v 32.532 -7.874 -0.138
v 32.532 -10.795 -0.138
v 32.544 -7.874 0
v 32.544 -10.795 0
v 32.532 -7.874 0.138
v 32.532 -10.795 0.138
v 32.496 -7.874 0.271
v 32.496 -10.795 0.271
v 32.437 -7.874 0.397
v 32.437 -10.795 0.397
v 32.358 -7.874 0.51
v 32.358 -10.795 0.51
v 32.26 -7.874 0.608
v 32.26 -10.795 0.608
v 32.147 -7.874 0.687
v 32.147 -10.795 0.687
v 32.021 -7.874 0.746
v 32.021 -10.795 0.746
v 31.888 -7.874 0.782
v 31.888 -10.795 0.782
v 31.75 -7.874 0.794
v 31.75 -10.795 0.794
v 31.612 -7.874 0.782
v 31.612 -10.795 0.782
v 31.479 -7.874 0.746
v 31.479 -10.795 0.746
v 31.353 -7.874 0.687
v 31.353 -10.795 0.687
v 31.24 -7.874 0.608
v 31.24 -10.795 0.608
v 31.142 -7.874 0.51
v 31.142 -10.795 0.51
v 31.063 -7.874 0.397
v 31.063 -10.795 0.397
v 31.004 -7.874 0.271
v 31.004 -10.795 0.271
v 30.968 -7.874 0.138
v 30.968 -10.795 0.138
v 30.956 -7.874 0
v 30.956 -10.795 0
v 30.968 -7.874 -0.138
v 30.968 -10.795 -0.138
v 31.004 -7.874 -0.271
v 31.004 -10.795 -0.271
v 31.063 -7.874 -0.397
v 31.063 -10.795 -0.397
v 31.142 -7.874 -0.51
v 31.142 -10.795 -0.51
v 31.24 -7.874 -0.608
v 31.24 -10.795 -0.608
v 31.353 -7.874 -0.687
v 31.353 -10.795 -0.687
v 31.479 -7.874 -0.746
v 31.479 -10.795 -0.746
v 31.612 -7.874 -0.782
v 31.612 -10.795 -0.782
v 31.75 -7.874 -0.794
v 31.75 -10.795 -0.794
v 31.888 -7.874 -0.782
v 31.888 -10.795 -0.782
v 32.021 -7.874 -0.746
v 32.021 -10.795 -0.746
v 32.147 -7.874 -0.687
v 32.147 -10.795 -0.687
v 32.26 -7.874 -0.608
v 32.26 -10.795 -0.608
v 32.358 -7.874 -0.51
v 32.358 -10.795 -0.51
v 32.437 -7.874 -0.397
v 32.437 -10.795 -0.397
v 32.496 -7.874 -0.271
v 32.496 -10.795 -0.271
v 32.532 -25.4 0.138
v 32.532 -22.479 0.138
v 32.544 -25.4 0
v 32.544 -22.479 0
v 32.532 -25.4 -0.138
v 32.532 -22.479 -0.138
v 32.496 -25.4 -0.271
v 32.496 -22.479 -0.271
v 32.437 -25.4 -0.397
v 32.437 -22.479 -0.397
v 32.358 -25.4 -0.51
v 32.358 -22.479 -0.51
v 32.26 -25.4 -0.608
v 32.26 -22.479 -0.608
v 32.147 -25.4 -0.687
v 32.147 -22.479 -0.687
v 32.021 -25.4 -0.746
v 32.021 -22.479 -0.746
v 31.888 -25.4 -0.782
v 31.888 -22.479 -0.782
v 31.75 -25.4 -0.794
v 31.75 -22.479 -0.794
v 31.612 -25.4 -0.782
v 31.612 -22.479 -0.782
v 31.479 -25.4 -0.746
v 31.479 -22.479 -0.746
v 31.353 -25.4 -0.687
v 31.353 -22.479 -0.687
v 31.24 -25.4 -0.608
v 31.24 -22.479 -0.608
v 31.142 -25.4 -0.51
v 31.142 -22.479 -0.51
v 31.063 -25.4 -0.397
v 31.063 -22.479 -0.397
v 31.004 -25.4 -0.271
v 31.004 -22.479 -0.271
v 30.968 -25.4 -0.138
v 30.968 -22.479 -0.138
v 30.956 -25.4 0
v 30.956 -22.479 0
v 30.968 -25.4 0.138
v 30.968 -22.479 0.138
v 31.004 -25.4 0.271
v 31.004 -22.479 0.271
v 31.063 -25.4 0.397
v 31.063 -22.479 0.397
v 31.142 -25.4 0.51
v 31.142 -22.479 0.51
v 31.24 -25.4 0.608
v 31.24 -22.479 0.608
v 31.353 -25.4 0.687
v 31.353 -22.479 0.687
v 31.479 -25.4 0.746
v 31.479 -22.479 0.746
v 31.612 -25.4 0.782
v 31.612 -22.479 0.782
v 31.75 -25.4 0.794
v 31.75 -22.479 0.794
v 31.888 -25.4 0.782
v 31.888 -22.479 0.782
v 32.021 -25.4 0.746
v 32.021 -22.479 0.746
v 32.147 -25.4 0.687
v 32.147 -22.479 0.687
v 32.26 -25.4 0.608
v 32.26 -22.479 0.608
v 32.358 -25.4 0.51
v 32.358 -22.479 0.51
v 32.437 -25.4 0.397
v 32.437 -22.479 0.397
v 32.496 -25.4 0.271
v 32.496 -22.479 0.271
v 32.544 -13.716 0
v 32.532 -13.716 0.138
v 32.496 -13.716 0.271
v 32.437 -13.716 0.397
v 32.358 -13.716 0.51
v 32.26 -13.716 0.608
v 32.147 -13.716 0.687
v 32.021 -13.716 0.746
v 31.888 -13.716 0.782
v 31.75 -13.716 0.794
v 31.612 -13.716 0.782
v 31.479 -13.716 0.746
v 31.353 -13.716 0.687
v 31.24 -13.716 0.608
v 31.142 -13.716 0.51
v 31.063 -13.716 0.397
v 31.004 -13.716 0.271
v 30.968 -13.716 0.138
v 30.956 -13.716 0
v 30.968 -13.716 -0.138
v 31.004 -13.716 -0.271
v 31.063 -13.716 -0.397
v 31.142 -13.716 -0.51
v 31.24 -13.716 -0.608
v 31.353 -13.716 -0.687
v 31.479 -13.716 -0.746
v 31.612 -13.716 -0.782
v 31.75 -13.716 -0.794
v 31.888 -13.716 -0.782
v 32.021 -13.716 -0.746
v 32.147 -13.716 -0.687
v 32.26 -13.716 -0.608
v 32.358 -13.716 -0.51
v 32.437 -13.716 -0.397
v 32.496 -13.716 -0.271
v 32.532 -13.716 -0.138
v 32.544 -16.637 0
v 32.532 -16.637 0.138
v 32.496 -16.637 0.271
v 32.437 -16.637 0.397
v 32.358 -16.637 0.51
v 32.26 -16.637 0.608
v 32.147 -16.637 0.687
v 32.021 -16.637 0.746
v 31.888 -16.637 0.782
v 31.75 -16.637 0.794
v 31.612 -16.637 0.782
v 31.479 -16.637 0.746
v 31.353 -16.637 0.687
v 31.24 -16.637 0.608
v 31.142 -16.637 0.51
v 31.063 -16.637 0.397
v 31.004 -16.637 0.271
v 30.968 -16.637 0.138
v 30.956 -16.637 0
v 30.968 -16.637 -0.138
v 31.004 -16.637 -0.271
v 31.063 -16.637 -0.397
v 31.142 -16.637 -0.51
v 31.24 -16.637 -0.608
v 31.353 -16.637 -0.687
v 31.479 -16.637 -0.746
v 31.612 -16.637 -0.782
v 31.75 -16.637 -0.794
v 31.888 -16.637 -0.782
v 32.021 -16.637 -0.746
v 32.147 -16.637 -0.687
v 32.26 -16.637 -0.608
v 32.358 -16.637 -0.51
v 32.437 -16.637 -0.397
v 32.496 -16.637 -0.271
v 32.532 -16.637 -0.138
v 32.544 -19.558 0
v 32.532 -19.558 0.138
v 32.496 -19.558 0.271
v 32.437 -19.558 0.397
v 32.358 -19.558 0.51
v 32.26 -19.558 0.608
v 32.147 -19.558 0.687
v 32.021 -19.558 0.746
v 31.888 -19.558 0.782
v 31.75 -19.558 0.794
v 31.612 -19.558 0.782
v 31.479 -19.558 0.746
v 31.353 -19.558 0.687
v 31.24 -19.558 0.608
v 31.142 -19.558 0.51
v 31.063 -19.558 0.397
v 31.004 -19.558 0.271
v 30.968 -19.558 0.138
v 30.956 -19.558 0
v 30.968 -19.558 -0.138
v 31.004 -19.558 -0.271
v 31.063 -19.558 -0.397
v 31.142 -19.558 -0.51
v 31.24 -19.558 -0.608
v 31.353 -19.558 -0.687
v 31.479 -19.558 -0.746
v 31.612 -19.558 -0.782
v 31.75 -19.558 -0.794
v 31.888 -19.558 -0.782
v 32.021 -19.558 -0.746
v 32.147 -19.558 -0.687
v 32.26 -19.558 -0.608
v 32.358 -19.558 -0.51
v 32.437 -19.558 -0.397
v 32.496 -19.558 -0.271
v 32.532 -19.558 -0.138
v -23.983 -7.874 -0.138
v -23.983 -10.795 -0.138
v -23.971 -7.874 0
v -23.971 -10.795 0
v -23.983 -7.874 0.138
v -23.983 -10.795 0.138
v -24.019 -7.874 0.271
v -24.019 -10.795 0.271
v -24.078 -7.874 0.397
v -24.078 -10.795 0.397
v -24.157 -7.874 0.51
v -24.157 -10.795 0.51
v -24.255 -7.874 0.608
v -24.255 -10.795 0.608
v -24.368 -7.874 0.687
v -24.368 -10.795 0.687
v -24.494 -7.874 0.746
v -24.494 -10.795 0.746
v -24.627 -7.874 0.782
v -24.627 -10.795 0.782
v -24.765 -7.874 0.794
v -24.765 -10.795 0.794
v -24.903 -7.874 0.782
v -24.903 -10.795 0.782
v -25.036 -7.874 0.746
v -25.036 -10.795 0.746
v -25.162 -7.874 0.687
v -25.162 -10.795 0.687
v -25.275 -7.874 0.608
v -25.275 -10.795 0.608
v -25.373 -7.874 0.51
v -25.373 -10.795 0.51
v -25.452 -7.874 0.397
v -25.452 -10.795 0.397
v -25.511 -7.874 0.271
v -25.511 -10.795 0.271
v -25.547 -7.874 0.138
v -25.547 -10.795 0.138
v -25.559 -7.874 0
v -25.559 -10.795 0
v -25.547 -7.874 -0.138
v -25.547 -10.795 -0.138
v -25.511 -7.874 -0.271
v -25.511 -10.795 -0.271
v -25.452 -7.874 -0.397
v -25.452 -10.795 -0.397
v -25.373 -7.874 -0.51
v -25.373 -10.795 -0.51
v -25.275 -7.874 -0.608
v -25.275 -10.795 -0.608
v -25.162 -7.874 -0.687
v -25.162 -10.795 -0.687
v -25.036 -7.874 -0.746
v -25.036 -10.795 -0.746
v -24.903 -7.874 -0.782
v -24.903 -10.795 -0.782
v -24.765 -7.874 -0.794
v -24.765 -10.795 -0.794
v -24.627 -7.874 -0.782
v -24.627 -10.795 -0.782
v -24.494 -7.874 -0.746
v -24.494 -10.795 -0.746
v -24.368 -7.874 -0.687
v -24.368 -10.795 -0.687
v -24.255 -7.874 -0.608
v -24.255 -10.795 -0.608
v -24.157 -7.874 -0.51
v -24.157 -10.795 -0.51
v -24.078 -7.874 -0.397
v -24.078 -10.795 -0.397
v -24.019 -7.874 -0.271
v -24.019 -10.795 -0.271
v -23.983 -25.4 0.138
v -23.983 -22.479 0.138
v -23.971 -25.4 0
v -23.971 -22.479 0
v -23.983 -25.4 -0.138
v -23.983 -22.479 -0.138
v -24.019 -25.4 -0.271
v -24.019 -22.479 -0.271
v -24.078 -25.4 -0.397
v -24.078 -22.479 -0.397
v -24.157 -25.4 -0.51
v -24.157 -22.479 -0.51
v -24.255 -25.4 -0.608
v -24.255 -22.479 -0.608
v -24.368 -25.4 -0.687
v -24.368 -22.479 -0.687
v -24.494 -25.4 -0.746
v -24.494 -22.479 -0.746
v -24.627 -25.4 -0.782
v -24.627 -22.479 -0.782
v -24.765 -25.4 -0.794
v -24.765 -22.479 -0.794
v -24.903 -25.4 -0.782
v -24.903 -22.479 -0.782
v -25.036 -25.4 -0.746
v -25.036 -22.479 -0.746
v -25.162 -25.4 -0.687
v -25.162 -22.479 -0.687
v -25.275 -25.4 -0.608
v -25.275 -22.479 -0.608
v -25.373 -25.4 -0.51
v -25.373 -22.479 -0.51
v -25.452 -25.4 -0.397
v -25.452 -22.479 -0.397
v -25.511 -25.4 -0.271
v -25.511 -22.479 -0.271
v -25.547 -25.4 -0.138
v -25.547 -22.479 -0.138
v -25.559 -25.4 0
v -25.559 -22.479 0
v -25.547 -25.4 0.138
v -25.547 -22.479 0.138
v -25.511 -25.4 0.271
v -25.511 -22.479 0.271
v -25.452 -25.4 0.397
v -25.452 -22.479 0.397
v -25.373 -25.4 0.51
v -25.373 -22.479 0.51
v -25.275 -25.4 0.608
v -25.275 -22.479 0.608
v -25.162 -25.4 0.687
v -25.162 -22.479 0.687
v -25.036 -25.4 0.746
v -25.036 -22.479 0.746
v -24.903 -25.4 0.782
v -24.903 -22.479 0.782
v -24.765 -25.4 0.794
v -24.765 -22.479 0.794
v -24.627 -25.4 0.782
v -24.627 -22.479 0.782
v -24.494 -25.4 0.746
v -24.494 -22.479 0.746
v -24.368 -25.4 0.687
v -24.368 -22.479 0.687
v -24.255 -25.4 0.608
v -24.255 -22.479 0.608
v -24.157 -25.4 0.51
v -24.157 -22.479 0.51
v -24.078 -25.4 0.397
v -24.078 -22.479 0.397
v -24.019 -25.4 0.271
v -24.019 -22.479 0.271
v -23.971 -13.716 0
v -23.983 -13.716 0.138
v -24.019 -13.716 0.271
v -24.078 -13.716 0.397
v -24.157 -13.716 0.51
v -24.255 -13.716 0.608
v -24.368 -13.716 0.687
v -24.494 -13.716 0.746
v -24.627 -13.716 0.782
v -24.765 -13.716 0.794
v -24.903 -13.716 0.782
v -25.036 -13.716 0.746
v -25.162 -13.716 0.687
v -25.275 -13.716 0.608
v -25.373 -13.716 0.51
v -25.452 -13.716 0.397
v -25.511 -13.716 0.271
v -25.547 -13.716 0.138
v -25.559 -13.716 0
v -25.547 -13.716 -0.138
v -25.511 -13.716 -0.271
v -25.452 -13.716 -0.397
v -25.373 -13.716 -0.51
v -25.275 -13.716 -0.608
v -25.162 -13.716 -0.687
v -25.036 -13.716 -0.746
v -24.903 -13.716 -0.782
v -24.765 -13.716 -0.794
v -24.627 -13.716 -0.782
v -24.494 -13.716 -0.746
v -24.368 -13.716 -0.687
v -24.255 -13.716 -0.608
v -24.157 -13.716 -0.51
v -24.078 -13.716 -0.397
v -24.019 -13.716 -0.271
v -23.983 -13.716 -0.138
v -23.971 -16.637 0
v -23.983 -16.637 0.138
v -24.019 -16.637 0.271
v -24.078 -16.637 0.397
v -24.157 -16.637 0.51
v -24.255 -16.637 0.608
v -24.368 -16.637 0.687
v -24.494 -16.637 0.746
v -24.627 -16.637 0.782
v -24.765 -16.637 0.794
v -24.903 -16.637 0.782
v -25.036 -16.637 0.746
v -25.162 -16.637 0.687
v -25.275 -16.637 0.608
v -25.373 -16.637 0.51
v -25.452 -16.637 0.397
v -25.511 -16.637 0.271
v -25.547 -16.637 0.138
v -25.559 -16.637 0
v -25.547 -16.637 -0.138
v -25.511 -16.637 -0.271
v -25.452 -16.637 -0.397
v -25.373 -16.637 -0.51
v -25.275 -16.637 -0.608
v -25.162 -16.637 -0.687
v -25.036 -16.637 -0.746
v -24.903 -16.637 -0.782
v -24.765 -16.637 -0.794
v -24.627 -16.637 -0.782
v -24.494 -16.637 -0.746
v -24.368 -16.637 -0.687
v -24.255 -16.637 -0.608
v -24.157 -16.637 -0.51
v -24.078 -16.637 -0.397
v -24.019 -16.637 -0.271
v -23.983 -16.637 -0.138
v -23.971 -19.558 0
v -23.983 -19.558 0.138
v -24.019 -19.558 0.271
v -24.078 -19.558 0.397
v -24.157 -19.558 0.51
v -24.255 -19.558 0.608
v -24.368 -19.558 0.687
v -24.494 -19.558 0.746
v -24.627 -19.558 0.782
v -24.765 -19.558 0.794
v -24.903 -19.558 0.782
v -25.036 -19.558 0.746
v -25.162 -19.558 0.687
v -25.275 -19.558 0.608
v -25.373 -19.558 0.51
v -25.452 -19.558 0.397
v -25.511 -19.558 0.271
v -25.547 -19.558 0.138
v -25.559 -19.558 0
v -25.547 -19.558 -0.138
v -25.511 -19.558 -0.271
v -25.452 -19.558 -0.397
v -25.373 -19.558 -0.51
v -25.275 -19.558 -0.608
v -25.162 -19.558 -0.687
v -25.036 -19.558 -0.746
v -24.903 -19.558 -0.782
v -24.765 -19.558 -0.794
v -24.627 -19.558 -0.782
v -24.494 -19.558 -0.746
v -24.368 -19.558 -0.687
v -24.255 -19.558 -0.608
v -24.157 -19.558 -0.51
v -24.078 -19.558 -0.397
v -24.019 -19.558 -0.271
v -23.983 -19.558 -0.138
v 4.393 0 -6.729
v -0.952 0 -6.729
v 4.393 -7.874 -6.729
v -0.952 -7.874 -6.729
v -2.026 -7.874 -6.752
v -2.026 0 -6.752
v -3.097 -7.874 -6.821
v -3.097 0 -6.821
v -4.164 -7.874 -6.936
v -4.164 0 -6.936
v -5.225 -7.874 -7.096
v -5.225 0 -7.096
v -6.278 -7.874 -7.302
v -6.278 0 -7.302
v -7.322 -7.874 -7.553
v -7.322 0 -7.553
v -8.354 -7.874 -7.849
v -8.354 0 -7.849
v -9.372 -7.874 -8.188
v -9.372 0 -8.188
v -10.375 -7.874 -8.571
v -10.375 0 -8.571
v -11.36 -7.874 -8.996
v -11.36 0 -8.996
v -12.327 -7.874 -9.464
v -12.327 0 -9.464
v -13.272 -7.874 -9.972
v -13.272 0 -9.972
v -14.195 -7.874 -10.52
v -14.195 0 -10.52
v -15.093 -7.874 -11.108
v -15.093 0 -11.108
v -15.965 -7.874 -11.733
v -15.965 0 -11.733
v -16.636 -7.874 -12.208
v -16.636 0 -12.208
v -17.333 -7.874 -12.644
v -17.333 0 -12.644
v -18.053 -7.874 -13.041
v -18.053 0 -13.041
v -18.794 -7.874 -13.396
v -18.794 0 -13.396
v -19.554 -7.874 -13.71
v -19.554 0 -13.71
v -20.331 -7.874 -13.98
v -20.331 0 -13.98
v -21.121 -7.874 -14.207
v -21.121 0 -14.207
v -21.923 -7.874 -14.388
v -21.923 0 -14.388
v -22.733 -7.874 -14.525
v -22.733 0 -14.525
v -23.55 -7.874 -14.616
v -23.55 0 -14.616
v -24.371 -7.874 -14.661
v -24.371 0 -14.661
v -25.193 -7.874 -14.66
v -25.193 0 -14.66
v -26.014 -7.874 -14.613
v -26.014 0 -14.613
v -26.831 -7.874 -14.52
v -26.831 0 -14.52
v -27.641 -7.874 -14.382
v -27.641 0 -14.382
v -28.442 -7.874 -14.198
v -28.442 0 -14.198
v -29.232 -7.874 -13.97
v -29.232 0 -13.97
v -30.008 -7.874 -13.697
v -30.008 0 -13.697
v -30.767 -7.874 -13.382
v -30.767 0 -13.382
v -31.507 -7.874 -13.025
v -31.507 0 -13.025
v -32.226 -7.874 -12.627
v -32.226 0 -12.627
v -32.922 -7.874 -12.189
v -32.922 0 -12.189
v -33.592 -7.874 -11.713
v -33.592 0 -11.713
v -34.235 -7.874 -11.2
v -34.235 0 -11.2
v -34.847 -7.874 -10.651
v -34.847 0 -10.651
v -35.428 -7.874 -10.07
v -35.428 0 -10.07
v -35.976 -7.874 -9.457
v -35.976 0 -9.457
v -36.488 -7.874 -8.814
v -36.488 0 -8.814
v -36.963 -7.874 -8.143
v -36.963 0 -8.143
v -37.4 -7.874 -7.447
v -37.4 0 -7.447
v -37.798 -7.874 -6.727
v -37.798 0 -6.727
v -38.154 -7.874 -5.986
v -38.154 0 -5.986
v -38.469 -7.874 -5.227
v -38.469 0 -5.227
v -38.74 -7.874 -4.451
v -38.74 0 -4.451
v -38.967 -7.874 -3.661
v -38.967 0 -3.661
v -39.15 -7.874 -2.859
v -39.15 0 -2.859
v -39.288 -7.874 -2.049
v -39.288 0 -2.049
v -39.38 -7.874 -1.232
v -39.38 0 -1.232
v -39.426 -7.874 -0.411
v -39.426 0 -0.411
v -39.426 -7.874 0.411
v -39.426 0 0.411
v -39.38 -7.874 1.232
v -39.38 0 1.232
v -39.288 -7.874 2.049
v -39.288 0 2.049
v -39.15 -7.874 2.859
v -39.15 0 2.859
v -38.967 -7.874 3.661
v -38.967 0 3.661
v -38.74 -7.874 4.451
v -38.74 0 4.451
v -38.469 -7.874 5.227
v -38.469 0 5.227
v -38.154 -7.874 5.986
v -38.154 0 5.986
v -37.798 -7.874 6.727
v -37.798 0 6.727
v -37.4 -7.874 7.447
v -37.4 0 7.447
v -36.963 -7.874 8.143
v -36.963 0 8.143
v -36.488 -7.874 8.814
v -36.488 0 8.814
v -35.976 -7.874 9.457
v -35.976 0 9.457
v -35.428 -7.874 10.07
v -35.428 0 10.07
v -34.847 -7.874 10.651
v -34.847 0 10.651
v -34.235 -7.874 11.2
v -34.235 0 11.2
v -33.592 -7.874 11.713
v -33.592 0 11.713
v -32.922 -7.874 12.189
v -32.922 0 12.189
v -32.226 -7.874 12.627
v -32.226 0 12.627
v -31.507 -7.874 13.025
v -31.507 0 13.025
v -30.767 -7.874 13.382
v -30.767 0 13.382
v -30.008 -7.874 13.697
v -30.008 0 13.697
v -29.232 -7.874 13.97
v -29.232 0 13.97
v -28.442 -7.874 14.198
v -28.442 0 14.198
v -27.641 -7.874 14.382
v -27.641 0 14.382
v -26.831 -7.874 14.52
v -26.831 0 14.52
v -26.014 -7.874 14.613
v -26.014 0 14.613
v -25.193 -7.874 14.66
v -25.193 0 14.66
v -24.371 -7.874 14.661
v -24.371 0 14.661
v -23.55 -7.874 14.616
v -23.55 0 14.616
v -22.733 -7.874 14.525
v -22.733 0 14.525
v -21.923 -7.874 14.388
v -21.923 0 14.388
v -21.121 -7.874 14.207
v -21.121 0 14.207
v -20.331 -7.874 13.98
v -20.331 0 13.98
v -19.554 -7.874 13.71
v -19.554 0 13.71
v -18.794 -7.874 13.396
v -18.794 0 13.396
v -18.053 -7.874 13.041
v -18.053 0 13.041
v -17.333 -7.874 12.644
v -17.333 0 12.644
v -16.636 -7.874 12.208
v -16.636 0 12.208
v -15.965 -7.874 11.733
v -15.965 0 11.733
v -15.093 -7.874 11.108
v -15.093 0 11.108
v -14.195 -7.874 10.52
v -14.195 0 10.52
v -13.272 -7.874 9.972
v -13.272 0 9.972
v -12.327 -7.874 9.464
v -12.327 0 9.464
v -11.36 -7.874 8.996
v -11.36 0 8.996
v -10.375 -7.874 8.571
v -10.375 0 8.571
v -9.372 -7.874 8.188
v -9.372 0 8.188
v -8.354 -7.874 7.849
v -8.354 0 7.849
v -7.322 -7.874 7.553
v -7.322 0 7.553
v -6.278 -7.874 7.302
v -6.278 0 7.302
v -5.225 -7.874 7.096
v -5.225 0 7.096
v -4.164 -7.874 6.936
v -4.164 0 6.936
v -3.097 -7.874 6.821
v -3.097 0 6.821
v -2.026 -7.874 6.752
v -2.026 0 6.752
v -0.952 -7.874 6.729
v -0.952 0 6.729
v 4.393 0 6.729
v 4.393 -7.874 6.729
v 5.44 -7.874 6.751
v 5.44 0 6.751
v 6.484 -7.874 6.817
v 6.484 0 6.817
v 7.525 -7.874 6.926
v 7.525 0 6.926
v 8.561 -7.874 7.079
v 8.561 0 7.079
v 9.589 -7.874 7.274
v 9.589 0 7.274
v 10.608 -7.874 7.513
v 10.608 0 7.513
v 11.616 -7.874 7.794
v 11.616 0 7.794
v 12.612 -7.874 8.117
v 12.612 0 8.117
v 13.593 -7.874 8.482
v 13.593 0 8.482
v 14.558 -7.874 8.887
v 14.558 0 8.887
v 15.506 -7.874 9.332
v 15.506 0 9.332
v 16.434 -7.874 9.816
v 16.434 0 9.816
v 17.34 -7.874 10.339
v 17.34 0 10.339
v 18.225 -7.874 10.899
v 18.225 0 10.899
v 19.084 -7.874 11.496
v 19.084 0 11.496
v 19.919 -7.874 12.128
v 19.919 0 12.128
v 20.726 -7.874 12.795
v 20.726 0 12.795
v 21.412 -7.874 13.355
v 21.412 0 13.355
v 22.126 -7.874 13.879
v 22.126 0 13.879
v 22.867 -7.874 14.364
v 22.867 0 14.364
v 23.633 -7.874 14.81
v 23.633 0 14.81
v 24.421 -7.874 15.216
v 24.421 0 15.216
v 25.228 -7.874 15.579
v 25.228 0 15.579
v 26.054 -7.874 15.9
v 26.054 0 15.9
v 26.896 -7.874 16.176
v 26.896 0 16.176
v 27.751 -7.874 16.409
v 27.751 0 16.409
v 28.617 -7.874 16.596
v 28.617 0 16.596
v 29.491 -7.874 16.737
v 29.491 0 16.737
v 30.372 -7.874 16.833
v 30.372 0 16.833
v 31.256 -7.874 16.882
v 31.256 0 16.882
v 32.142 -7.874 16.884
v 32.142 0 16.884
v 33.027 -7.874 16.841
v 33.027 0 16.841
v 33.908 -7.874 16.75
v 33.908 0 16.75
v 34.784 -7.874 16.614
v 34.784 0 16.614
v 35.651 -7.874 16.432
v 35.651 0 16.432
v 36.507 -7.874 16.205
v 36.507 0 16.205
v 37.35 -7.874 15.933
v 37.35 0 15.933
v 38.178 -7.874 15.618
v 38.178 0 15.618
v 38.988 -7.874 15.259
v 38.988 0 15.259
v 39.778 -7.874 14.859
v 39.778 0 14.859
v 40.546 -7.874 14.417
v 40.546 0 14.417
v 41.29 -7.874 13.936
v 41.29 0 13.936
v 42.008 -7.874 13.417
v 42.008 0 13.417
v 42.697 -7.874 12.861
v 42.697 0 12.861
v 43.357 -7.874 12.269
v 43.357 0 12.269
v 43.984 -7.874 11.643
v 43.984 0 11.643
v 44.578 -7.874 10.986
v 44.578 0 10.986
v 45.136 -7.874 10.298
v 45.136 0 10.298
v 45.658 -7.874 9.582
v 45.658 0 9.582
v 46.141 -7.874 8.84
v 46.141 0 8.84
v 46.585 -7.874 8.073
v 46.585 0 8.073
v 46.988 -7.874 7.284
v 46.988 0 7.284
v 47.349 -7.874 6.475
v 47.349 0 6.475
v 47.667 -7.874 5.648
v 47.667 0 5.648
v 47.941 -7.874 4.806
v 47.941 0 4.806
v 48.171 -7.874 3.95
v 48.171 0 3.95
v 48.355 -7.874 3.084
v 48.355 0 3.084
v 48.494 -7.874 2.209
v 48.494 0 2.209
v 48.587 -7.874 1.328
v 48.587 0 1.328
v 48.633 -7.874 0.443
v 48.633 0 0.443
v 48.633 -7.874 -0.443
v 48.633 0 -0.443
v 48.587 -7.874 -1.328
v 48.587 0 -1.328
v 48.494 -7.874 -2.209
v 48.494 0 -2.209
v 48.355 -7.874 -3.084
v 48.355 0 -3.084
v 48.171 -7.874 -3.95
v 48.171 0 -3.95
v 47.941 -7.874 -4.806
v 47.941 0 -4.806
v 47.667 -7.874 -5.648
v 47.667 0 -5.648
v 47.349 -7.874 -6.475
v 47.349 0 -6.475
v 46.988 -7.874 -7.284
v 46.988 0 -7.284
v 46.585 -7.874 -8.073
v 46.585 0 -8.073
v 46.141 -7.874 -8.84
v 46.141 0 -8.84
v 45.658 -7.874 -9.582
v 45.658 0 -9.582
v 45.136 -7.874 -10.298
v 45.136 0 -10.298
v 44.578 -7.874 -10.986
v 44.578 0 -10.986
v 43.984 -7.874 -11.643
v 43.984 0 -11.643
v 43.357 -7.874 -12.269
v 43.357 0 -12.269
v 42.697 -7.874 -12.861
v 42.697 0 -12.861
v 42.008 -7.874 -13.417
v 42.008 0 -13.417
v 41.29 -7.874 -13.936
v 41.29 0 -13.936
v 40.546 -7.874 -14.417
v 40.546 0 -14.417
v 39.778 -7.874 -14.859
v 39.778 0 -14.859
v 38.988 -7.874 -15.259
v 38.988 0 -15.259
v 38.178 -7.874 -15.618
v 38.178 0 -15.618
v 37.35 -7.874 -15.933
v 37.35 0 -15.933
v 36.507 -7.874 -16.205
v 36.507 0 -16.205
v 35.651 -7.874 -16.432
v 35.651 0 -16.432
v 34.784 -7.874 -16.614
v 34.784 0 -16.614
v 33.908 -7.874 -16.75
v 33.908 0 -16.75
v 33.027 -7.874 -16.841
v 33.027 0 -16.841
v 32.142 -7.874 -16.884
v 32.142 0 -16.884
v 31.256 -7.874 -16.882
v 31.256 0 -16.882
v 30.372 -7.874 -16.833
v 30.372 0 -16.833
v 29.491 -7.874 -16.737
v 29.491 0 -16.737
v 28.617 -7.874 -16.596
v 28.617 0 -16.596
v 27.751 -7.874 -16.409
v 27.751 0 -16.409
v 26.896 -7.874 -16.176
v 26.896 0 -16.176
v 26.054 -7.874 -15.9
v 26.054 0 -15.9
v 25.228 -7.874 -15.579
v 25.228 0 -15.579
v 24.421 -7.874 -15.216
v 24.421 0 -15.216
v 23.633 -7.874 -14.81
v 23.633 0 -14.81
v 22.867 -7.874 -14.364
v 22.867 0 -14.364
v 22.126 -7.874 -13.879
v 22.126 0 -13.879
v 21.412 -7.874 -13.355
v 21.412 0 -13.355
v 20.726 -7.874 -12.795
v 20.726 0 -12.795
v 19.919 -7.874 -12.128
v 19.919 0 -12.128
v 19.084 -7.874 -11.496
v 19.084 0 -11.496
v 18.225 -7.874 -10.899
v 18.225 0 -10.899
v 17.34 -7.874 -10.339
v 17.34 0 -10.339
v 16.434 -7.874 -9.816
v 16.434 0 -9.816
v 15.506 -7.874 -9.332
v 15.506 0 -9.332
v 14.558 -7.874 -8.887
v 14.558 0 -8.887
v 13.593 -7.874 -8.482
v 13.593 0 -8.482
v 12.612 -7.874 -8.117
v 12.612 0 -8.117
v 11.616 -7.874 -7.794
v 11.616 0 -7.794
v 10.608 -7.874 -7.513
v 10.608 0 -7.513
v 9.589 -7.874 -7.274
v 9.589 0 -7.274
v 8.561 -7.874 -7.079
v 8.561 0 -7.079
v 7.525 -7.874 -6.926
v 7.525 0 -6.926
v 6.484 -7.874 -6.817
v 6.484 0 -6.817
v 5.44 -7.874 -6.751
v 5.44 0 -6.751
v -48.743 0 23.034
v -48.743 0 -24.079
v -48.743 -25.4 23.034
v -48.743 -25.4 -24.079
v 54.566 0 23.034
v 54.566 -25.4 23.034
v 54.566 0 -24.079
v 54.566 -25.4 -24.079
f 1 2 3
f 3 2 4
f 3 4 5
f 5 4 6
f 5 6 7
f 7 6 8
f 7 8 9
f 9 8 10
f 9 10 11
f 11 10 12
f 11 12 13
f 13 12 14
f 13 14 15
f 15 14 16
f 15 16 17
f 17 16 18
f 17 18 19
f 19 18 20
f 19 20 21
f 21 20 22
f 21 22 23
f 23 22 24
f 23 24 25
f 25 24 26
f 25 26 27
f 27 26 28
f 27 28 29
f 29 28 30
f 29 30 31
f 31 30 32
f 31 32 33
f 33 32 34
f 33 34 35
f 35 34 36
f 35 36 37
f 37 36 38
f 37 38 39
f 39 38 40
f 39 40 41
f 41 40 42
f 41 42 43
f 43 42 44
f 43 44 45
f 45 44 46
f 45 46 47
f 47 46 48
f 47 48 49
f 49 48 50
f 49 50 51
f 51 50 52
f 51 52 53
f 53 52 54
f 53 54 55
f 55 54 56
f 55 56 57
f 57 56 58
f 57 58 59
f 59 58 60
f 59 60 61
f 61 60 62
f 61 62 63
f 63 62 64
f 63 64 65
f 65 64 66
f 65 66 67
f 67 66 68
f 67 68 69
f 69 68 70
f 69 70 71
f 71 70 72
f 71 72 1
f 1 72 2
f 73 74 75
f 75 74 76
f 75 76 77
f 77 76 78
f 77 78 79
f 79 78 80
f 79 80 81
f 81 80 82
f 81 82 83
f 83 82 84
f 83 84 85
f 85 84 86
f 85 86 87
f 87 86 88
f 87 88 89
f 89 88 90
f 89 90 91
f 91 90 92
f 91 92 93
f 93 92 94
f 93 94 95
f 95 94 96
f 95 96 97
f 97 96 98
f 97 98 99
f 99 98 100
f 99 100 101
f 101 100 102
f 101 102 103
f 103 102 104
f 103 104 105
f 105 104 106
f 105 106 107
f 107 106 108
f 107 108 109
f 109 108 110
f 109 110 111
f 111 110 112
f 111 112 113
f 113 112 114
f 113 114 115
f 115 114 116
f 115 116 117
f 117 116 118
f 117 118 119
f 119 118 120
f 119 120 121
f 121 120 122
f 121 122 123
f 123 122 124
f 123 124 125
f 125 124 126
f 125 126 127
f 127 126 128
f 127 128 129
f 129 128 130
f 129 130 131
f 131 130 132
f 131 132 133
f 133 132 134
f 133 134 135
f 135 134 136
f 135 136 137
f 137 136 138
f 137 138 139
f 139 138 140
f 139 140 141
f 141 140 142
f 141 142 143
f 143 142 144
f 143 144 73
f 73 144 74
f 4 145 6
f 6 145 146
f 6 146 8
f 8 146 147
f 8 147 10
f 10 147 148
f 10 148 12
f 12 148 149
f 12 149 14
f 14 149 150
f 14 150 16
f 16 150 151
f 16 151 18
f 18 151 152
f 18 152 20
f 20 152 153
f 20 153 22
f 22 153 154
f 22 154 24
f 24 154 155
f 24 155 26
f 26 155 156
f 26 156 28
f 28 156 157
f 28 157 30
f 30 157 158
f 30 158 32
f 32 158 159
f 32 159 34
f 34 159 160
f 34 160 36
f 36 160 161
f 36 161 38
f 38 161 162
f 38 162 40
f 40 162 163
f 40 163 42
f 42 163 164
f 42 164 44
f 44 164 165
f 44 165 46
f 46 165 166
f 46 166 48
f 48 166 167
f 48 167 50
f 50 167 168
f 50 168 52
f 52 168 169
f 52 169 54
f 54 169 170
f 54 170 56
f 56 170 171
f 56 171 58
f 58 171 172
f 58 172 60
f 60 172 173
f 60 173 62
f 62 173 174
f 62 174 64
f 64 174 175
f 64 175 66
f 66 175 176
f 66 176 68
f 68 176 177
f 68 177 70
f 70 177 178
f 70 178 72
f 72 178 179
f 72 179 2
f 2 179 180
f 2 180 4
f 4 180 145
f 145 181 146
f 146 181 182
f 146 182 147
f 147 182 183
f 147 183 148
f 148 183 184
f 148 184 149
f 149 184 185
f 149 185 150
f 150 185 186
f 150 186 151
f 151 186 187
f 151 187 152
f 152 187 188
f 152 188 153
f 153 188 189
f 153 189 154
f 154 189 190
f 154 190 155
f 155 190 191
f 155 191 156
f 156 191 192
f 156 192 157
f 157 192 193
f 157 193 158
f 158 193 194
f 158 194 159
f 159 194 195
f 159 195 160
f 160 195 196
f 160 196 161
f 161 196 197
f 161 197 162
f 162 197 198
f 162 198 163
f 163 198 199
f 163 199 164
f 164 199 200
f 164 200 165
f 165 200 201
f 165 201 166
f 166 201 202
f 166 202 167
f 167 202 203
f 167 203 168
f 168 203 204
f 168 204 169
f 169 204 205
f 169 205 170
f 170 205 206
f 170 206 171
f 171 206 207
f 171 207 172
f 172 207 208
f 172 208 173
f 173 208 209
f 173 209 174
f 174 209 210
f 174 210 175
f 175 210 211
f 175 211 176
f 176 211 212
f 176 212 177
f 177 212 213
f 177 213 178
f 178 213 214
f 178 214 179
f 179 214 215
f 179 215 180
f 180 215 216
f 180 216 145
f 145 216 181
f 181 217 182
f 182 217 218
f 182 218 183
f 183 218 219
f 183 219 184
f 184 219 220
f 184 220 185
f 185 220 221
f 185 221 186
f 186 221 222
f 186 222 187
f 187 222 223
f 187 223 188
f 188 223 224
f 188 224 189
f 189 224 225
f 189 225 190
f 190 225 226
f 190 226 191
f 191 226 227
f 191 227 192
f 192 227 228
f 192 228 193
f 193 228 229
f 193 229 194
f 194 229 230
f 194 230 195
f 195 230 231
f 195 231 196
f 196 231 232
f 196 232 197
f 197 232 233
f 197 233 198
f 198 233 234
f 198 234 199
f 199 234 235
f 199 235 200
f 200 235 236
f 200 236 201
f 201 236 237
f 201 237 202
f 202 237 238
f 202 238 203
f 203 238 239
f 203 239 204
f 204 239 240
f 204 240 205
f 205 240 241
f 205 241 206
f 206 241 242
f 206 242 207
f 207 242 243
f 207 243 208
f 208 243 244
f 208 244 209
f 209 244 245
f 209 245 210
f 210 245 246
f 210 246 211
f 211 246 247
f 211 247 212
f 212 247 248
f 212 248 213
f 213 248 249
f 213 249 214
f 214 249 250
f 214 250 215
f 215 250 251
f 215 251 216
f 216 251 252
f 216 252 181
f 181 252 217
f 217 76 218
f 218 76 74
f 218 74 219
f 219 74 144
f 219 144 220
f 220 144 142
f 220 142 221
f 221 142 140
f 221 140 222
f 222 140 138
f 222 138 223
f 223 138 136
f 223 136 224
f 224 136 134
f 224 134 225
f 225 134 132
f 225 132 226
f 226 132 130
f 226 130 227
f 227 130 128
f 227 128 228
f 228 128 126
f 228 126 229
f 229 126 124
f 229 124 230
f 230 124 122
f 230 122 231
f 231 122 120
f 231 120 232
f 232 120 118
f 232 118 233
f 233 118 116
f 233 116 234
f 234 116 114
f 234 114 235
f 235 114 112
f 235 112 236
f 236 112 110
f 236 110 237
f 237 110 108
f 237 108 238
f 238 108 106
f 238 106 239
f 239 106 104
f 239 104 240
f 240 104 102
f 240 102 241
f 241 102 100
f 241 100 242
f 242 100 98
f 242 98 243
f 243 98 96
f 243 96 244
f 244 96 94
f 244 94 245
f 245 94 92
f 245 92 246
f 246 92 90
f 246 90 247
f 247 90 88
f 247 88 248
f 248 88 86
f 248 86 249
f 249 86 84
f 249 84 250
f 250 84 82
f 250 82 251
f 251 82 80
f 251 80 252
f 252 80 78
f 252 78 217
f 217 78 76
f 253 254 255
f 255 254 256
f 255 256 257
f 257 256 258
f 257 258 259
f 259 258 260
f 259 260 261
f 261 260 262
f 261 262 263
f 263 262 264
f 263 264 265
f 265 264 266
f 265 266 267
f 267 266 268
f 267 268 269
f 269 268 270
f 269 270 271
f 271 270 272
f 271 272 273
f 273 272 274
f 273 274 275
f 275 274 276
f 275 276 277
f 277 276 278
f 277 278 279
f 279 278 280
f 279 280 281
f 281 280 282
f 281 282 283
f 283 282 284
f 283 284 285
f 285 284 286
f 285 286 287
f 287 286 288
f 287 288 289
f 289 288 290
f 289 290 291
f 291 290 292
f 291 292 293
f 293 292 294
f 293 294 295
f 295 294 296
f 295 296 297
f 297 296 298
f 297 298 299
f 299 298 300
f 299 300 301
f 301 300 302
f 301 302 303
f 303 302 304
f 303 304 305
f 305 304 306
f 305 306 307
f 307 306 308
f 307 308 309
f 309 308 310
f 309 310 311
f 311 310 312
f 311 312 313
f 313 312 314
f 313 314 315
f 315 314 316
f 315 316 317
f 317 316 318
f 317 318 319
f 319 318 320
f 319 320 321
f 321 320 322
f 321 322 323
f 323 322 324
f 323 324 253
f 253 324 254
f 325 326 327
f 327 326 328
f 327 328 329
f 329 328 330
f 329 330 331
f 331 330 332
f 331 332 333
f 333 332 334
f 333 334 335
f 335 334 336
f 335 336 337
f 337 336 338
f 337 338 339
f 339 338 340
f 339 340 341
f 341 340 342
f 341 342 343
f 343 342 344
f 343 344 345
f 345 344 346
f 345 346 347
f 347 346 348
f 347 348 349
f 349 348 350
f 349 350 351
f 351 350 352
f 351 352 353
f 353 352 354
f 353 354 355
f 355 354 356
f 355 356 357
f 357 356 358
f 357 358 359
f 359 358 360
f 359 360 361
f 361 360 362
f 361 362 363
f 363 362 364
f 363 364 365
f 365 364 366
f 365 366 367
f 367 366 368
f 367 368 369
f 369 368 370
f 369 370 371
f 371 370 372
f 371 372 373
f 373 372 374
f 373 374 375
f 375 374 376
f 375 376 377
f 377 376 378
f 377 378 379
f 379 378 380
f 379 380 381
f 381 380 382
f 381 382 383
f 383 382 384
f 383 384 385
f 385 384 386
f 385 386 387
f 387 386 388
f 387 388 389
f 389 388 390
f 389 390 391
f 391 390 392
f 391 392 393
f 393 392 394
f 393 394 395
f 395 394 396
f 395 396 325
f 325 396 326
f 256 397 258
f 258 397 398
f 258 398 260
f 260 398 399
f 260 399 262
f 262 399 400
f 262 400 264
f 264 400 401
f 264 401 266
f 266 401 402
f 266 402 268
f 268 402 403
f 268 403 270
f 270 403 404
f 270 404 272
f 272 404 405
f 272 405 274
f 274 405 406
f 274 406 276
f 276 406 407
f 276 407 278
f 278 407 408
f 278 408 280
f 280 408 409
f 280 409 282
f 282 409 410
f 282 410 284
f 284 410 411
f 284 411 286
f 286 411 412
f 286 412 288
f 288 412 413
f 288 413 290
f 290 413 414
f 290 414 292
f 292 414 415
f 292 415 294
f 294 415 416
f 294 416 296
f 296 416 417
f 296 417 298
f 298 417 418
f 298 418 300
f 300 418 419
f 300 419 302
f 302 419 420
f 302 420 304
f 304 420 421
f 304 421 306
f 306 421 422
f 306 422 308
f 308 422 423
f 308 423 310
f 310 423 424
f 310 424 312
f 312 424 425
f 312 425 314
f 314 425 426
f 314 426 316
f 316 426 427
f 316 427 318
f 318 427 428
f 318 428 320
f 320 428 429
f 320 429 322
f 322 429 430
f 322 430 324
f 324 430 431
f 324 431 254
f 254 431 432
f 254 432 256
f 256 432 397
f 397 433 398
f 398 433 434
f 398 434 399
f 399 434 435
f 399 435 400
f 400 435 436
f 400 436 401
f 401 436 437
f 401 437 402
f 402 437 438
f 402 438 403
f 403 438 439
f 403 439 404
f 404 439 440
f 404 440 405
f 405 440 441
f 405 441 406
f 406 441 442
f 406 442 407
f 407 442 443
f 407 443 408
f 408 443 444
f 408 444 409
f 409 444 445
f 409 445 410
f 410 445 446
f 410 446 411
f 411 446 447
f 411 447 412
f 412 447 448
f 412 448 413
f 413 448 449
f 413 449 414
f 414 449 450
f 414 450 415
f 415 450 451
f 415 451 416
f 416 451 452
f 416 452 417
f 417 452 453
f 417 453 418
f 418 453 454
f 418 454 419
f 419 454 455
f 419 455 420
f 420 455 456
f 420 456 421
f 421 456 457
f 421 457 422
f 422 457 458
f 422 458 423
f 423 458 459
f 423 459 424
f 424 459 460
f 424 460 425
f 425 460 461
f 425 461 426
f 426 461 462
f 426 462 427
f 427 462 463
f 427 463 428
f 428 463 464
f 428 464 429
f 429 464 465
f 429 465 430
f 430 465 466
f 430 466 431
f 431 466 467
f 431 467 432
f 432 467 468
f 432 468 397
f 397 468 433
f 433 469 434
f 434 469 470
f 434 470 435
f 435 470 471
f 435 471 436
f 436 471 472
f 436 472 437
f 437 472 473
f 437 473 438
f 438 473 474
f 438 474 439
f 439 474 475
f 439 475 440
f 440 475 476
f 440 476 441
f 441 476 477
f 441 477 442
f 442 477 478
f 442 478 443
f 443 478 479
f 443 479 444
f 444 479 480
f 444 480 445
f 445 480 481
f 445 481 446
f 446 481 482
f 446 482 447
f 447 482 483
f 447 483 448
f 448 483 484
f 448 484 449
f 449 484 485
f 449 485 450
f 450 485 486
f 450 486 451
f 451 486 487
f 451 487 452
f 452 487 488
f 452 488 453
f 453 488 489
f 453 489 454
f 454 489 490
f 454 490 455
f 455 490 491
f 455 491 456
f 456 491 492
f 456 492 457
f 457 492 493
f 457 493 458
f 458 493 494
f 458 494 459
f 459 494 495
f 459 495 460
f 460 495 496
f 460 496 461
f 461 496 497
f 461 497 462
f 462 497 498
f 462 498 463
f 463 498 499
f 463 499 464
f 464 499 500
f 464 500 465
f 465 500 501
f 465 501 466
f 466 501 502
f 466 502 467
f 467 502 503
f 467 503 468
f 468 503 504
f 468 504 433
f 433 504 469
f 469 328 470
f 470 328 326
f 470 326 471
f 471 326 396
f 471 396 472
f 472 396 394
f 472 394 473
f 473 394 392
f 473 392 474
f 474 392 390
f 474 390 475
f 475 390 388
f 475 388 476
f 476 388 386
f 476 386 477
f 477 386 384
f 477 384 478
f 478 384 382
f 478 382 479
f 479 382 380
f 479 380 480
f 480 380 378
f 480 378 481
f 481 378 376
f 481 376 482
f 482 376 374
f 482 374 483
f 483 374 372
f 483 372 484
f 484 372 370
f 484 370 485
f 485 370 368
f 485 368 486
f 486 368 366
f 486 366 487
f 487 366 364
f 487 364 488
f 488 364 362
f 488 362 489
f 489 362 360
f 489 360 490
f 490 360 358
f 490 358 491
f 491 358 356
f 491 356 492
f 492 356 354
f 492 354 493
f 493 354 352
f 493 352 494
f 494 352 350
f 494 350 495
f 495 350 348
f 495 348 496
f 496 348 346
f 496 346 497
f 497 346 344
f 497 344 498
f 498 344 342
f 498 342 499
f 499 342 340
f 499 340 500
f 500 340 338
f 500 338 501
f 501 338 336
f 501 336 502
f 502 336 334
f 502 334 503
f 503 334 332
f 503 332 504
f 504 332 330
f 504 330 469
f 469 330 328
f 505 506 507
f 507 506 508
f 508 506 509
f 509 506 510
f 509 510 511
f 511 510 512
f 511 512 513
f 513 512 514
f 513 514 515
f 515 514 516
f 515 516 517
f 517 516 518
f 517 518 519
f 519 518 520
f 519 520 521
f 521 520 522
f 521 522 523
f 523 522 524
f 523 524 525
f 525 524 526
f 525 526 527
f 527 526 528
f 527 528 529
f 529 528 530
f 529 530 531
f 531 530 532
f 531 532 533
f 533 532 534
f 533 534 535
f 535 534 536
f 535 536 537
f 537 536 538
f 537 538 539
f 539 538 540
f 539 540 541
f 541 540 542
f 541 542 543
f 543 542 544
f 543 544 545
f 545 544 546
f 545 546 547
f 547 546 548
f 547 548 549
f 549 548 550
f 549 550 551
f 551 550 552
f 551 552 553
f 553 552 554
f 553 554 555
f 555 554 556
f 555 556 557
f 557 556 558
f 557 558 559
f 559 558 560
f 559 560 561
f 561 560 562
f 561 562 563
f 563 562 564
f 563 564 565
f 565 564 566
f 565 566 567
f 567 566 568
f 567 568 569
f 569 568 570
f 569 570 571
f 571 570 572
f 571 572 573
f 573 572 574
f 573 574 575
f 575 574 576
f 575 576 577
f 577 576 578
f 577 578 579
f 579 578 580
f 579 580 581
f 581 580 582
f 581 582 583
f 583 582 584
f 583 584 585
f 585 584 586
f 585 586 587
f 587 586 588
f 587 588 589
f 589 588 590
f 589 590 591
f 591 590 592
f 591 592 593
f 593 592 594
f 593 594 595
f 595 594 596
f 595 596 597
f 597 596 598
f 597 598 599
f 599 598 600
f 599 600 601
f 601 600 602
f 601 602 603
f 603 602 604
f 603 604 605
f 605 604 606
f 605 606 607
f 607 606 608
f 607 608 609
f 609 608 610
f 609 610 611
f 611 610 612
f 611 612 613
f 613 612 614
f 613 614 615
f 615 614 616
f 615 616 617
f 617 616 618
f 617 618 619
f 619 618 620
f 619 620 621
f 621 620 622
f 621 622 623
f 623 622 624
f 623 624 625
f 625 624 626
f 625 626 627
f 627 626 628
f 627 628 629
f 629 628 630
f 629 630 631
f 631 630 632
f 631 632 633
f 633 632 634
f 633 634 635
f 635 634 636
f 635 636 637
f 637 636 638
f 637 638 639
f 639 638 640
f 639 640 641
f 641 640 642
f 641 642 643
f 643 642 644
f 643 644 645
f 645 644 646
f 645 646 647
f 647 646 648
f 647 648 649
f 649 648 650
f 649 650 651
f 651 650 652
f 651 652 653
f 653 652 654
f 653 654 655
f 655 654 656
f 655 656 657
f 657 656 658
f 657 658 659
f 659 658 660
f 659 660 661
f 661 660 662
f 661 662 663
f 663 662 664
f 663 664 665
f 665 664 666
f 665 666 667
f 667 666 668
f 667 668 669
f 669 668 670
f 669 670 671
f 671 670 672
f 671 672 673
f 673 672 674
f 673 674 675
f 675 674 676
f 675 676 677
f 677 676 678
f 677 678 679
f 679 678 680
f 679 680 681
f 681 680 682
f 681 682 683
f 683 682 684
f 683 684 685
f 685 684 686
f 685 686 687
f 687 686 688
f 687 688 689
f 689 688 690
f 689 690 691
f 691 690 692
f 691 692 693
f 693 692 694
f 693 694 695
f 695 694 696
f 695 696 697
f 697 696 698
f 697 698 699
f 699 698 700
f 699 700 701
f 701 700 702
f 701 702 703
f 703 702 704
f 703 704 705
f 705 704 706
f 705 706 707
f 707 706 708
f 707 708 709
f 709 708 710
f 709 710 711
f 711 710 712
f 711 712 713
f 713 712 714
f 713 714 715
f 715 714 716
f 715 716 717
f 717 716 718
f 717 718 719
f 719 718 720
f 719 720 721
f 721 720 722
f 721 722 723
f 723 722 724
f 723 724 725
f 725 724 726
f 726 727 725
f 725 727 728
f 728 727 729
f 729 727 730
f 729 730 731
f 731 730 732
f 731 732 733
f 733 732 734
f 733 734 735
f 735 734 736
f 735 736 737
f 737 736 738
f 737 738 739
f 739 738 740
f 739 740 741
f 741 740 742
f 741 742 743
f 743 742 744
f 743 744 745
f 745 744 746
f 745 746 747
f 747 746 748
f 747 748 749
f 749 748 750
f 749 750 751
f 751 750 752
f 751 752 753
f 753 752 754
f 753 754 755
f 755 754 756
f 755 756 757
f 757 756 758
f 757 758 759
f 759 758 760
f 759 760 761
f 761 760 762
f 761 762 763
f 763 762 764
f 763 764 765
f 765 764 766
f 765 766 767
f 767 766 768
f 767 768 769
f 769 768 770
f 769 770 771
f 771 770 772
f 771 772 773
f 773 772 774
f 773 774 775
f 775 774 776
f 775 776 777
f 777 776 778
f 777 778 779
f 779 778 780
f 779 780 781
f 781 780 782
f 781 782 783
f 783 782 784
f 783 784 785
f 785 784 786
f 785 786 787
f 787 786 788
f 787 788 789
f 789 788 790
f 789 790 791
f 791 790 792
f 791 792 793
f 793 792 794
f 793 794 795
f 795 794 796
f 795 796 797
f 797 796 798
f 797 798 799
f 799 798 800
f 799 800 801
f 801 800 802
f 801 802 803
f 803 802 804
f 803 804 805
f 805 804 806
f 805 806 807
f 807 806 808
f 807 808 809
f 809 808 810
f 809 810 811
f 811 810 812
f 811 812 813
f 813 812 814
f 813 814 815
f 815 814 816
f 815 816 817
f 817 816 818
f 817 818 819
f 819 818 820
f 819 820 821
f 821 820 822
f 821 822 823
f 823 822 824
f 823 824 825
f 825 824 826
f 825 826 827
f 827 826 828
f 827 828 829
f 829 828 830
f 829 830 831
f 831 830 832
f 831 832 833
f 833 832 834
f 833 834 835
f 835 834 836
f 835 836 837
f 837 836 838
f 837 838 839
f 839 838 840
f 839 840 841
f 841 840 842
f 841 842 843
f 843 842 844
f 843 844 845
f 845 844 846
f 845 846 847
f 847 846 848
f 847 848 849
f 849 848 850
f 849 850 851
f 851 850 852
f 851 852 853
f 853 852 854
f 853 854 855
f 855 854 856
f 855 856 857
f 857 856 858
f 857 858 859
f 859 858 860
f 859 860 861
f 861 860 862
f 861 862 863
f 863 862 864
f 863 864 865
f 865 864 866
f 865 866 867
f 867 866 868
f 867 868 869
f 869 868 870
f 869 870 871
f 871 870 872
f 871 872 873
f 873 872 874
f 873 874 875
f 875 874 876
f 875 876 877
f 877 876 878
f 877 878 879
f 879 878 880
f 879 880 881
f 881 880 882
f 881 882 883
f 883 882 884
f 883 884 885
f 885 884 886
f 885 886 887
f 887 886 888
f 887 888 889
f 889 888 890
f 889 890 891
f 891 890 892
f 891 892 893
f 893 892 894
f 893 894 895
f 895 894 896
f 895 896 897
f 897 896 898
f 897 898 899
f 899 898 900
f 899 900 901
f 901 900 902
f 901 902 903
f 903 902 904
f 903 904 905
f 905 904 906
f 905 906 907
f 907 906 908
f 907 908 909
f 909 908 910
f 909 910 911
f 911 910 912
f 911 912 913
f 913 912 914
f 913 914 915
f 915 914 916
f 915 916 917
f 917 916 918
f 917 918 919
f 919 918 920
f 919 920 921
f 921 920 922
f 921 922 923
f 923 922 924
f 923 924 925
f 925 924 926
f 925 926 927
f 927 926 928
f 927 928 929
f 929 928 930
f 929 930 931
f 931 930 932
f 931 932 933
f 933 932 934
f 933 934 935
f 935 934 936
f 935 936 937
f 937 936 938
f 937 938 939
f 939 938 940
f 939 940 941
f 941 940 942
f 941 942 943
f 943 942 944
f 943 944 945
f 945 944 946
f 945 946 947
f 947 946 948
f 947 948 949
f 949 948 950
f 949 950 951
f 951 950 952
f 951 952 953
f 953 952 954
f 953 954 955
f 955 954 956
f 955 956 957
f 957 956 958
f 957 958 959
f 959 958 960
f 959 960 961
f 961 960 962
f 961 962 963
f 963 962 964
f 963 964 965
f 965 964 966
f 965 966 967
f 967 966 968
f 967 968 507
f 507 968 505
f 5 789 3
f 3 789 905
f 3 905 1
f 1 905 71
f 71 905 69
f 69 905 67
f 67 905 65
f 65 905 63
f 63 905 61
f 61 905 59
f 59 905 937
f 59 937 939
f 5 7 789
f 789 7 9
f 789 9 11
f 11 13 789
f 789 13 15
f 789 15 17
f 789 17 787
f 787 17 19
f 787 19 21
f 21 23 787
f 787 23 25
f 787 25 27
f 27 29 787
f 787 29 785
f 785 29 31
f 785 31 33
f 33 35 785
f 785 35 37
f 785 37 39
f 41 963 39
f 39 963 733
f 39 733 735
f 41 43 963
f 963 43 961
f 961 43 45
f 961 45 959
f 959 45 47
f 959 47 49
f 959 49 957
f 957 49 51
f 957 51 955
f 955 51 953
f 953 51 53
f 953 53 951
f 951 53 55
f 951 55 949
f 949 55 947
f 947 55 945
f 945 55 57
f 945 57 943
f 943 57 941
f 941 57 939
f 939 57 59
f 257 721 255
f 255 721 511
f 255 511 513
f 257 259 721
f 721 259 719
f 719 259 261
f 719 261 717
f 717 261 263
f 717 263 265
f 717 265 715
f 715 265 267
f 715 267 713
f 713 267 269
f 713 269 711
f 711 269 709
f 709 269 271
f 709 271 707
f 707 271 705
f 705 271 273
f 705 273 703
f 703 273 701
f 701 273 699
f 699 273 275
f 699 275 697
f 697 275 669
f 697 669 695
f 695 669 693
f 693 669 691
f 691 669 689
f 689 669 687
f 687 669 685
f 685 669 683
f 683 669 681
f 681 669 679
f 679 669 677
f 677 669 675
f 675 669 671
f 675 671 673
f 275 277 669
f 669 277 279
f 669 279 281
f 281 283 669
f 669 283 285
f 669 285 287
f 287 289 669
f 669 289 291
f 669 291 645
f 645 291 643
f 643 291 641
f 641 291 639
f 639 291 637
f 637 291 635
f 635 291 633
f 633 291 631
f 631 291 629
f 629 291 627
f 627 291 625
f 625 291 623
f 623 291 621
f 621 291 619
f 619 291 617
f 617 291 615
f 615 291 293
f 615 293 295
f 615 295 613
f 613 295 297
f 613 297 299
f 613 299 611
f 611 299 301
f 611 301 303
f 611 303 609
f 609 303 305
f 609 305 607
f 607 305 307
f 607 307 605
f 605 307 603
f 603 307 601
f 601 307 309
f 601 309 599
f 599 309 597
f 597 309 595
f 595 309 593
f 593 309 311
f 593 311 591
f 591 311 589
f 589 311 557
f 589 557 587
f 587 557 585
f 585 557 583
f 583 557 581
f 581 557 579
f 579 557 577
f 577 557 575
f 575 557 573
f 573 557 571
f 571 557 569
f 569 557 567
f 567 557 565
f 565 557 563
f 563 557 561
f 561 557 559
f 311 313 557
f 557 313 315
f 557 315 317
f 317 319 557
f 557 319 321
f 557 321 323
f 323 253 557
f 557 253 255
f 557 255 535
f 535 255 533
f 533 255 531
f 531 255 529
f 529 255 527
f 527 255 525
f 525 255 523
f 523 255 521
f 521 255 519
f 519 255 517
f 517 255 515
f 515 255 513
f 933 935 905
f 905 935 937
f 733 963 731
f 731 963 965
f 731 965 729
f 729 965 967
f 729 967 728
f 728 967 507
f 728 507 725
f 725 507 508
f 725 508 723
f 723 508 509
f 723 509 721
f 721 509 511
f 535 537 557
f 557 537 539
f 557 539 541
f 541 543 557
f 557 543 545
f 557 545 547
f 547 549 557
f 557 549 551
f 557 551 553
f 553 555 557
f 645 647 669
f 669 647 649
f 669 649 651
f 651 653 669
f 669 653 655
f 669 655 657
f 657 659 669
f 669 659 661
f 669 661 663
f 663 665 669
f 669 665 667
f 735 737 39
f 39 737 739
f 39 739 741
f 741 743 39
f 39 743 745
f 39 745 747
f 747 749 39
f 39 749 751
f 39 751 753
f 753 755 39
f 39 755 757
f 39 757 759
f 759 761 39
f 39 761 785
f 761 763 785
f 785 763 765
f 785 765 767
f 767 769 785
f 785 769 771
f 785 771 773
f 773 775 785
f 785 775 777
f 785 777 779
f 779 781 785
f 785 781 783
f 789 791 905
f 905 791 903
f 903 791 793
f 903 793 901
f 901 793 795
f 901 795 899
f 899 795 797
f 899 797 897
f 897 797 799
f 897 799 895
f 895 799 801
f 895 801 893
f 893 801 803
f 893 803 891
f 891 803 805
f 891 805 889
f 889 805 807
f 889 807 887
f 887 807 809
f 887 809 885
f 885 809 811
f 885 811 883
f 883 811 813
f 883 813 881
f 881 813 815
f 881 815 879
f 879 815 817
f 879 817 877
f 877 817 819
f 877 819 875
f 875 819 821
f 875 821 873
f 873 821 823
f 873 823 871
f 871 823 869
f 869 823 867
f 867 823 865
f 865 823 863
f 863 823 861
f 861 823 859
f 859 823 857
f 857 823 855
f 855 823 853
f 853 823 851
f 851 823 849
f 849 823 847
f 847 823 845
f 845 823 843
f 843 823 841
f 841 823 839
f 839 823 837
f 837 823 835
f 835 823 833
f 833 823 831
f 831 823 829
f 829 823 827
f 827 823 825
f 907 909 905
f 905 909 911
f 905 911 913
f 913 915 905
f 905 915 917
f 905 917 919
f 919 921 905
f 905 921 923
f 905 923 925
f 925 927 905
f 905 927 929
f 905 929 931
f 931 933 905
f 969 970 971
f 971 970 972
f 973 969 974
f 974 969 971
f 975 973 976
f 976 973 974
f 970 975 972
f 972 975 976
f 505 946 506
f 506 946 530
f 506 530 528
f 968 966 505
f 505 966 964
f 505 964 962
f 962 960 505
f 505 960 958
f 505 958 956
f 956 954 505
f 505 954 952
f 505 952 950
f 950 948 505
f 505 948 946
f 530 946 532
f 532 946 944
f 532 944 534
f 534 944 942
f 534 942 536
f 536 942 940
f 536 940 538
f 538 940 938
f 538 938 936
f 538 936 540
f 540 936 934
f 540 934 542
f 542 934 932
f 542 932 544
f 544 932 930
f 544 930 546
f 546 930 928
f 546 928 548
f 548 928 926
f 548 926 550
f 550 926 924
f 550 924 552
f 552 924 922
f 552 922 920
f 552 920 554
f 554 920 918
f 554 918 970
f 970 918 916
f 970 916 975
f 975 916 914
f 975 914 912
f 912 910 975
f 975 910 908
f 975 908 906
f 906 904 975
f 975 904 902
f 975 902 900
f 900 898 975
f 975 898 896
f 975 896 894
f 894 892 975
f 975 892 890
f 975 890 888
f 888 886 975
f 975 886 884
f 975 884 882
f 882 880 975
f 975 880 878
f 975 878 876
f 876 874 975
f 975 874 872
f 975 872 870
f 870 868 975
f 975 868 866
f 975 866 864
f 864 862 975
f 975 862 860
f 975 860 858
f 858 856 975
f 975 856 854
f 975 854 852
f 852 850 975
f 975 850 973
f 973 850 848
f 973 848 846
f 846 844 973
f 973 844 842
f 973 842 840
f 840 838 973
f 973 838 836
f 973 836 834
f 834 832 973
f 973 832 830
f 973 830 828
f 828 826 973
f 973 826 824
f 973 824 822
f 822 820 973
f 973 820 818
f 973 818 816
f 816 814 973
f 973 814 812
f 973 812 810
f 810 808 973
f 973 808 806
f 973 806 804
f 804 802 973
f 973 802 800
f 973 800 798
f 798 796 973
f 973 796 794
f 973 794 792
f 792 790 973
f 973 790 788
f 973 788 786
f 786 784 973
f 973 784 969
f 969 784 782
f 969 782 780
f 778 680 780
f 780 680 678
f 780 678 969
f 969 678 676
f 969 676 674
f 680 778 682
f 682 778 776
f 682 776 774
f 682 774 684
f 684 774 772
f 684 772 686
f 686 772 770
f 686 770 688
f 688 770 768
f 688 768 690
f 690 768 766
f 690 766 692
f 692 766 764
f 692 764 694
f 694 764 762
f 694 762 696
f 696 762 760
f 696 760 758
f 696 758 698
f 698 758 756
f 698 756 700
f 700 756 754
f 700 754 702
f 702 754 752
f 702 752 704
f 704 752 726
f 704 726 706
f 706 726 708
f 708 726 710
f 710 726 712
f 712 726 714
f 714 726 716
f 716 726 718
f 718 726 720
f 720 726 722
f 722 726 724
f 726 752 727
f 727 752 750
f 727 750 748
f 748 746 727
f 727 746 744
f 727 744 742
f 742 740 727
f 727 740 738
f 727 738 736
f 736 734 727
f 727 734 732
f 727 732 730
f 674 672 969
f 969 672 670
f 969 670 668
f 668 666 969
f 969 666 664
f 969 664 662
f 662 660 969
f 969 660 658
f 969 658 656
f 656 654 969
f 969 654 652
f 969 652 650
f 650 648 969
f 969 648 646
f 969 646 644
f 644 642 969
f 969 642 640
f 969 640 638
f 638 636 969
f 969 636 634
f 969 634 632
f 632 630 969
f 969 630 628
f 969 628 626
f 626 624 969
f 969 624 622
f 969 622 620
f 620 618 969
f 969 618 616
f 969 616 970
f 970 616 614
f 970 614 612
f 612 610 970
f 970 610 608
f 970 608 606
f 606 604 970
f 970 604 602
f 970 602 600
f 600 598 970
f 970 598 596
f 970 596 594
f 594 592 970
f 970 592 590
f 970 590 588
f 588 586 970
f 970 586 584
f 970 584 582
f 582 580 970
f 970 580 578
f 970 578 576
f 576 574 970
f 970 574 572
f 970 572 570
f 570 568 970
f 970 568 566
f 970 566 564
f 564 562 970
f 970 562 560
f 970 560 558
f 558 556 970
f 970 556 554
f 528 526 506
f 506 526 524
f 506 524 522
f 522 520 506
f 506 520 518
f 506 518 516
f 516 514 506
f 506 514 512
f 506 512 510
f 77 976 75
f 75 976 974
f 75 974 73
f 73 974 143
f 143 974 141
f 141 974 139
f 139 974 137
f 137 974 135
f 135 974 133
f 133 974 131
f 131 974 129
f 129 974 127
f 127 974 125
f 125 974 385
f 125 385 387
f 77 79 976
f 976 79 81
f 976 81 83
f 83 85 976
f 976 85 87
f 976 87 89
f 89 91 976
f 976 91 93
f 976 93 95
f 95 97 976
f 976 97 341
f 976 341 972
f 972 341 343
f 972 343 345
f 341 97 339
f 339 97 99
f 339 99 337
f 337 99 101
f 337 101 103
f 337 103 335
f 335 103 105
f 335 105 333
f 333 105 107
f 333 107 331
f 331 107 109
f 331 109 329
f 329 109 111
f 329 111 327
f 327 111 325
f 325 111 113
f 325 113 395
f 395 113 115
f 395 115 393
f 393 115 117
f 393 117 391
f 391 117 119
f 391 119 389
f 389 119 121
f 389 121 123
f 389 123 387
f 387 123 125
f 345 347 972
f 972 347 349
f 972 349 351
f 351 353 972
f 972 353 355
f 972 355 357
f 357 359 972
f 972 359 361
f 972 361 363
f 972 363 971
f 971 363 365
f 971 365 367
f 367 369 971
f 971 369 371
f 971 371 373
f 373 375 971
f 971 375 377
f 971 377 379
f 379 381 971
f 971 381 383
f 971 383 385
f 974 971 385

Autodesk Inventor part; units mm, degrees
ref_plane "YZ Plane" through (0, 0, 0) normal (1, 0, 0) x (0, 1, 0)
ref_plane "XZ Plane" through (0, 0, 0) normal (0, 1, 0) x (-1, 0, 0)
ref_plane "XY Plane" through (0, 0, 0) normal (0, 0, 1) x (1, 0, 0)
sketch "Sketch1" plane through (0, 0, 0) normal (0, 1, 0) x (-1, 0, 0)
  circle A0 centre (-31.75, 0) radius 11.0744
  circle A1 centre (24.765, 0) radius 9.652
  line L0 (-4.3934, -6.35) -> (0.9525, -6.35)
  arc A2 (16.1925, -11.43) -> (16.1925, 11.43) centre (24.765, 0) ccw
  arc A3 (-20.9731, 12.5076) -> (-20.9731, -12.5076) centre (-31.75, 0) ccw
  line L1 (-4.3934, 6.35) -> (0.9525, 6.35)
  line L2 (-54.5659, 23.0342) -> (48.7426, 23.0342)
  line L3 (48.7426, 23.0342) -> (48.7426, -24.079)
  line L4 (48.7426, -24.079) -> (-54.5659, -24.079)
  line L5 (-54.5659, -24.079) -> (-54.5659, 23.0342)
  arc A4 (-20.9731, 12.5076) -> (-4.3934, 6.35) centre (-4.3934, 31.75) ccw
  arc A5 (0.9525, 6.35) -> (16.1925, 11.43) centre (0.9525, 31.75) ccw
  arc A6 (16.1925, -11.43) -> (0.9525, -6.35) centre (0.9525, -31.75) ccw
  arc A7 (-4.3934, -6.35) -> (-20.9731, -12.5076) centre (-4.3934, -31.75) ccw
  arc A8 (0.9525, 6.729) -> (15.9651, 11.7332) centre (0.9525, 31.75) ccw
  line L6 (0.9525, 6.729) -> (-4.3934, 6.729)
  arc A9 (-20.7258, 12.7947) -> (-4.3934, 6.729) centre (-4.3934, 31.75) ccw
  arc A10 (-20.7258, 12.7947) -> (-20.7258, -12.7947) centre (-31.75, 0) ccw
  arc A11 (-4.3934, -6.729) -> (-20.7258, -12.7947) centre (-4.3934, -31.75) ccw
  line L7 (-4.3934, -6.729) -> (0.9525, -6.729)
  arc A12 (15.9651, -11.7332) -> (0.9525, -6.729) centre (0.9525, -31.75) ccw
  arc A13 (15.9651, -11.7332) -> (15.9651, 11.7332) centre (24.765, 0) ccw
  circle A14 centre (24.765, 0) radius 0.7937
  circle A15 centre (-31.75, 0) radius 0.7938
  point P0 (0, 0)
  point P1 (-16.51, -6.35)
  point P2 (-16.51, 6.35)
  point P3 (11.9662, -6.35)
  point P4 (11.9662, 6.35)
  dimension "d15" = 22.1488
  dimension "d17" = 12.7
  dimension "d18" = 33.02
  dimension "d19" = 19.304
  dimension "d20" = 28.575
  dimension "d21" = 56.515
  dimension "d35" = 25.4
  dimension "d40" = 1.5875
  dimension "d41" = 1.5875
extrude "Extrusion3" add sketch "Sketch1" against normal blind 25.4 contours A0 | A1 | A7 A3 A4 L1 A5 A2 A6 L0 | L2 L3 L4 L5 | A8 A13 A12 L7 A11 A10 A9 L6 | A14 | A15
extrude "Extrusion4" cut sketch "Sketch1" against normal blind 7.874 contours A0 | A1 | A7 A3 A4 L1 A5 A2 A6 L0 | A8 A13 A12 L7 A11 A10 A9 L6 | A14 | A15
extrude "Extrusion5" cut sketch "Sketch1" against normal blind 254 contours A14 | A15
properties part number "C.Connecting Rod Cutting Jig"
